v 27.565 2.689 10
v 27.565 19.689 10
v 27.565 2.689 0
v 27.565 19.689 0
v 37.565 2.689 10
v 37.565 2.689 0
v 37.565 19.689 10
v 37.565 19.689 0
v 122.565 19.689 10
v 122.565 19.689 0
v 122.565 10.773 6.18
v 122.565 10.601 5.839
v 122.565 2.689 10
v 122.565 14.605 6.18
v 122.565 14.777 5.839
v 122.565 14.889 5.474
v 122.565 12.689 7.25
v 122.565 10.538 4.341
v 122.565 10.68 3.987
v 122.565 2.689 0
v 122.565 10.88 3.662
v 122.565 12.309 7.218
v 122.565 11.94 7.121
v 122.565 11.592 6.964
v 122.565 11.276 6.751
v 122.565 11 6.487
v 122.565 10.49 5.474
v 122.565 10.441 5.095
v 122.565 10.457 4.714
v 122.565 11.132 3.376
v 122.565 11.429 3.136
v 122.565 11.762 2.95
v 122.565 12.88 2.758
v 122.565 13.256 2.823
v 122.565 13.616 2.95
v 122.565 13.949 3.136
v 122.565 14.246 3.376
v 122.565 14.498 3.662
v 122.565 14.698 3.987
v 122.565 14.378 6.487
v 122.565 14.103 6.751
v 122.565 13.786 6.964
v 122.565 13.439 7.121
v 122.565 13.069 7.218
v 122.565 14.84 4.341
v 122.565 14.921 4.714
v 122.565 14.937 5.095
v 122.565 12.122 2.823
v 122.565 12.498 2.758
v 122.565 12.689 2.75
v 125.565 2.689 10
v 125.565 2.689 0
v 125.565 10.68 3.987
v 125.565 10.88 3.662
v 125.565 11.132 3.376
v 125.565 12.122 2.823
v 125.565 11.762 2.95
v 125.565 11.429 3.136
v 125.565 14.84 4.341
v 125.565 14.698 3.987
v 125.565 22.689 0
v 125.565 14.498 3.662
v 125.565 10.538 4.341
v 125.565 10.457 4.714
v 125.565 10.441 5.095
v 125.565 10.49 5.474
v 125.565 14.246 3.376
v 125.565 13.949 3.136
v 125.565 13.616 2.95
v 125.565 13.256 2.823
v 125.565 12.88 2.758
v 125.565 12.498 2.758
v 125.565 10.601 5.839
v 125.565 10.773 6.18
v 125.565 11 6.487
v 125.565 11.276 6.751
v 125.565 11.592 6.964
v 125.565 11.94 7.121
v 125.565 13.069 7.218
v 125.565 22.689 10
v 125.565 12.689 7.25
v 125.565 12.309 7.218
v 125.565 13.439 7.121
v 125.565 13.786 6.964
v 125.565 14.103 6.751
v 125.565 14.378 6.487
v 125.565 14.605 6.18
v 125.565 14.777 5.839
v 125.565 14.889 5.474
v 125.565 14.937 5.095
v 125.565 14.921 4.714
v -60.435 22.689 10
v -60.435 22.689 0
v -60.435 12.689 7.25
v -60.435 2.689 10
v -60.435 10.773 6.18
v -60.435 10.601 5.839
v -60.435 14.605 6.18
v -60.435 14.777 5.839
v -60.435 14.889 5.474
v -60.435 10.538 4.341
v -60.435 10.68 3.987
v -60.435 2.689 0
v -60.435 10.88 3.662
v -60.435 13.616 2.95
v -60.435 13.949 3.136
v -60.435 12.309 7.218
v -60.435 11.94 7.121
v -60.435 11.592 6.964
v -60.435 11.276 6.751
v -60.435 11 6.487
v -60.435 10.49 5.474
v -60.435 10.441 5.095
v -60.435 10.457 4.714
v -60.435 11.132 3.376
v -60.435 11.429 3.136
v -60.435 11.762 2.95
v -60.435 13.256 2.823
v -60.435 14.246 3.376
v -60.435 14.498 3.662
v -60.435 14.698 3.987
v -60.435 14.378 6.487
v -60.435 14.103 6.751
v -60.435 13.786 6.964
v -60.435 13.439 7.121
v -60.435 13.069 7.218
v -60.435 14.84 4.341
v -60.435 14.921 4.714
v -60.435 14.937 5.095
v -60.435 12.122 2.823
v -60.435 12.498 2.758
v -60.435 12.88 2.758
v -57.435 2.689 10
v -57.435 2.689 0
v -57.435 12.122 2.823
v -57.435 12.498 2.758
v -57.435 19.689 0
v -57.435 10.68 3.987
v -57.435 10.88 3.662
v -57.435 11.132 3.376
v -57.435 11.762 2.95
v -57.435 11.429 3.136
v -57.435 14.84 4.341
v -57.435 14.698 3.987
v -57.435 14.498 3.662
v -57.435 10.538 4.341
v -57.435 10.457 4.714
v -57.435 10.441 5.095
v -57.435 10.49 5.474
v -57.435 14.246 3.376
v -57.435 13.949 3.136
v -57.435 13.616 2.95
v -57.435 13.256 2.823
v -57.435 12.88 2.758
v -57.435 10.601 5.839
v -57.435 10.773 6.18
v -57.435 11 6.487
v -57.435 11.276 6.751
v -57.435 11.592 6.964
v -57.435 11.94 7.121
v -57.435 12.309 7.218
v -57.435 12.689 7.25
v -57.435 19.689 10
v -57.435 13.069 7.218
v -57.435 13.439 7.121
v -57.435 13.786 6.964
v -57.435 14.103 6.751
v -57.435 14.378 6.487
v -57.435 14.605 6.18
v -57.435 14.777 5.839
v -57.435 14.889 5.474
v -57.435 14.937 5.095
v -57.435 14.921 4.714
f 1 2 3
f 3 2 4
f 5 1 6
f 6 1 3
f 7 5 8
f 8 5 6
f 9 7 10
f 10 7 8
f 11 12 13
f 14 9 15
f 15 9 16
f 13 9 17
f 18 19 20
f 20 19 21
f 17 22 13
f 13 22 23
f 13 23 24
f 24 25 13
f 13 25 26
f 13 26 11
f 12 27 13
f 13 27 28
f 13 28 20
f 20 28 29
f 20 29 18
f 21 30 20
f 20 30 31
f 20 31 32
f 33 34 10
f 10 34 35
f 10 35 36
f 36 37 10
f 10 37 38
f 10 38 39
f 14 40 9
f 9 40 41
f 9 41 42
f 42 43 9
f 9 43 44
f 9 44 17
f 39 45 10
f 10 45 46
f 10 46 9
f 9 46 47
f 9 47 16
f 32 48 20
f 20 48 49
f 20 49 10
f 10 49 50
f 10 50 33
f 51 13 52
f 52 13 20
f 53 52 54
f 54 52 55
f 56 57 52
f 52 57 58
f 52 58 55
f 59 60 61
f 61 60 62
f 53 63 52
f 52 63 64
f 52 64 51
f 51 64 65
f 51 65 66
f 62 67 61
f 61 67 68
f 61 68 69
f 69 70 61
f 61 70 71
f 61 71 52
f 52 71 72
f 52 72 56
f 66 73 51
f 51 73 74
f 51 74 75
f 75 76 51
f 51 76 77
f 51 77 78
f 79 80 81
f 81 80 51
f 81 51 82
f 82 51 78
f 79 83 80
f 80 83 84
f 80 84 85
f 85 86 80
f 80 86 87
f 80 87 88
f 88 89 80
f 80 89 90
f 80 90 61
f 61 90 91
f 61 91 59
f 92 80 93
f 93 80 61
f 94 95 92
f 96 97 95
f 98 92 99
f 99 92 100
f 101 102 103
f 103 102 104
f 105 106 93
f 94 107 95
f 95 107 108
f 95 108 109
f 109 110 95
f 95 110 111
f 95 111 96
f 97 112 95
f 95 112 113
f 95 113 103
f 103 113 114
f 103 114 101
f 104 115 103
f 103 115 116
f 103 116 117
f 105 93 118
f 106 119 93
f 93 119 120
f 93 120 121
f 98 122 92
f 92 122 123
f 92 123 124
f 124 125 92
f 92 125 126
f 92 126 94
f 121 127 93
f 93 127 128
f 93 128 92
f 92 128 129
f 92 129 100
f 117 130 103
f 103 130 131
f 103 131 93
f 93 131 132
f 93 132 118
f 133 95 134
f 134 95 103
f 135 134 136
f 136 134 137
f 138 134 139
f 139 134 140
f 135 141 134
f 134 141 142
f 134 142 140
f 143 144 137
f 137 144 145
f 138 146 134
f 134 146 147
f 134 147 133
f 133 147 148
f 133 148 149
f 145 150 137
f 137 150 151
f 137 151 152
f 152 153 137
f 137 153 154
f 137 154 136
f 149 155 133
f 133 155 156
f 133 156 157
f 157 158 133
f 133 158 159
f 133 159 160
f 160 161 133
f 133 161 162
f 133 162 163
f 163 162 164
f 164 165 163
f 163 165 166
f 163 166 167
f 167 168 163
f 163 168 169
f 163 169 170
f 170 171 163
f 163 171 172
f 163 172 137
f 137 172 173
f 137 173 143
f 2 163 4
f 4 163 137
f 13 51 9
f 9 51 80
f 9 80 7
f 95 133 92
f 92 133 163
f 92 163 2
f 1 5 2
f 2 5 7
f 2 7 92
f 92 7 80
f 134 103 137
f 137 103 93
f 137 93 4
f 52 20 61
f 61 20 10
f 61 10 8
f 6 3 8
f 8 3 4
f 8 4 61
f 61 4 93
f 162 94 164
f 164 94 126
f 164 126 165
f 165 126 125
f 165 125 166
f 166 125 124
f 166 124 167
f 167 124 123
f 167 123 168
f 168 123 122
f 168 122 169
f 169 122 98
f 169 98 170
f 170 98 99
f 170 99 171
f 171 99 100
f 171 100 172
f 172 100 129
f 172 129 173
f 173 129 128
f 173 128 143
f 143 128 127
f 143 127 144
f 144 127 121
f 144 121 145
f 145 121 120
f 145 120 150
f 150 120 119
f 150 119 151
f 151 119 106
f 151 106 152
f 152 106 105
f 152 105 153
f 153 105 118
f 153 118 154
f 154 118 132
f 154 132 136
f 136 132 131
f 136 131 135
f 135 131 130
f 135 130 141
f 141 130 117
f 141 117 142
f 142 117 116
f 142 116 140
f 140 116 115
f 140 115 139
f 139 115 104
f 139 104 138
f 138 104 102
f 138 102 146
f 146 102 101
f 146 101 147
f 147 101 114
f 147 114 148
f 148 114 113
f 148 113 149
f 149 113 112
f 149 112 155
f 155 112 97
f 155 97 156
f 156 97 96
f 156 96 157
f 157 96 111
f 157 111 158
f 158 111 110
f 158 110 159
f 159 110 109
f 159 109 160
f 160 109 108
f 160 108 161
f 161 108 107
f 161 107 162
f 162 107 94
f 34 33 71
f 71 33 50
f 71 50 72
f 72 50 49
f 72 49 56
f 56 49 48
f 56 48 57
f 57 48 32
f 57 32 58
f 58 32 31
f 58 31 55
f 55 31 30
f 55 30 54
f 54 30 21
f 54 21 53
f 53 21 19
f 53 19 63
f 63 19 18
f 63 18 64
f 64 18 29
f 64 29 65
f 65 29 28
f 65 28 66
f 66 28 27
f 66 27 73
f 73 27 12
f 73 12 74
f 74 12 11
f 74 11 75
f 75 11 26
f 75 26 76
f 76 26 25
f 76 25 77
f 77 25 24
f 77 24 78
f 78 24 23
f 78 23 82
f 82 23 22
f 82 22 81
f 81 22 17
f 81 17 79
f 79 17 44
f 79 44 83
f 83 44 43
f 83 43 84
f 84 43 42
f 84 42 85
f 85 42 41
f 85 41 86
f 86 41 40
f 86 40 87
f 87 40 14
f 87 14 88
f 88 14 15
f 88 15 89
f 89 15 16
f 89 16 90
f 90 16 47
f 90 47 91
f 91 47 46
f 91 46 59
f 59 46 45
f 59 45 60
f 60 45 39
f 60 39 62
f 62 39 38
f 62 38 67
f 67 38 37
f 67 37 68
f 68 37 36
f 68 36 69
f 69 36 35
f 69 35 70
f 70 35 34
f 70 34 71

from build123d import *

# Parameters (mm, degrees)
DODANIE_WYCI_GNI_CIE1_DEPTH = 10
SZKIC4_R                    = 2.25
WYTNIJ_WYCI_GNI_CIE1_DEPTH  = 10
WYTNIJ_WYCI_GNI_CIE2_START  = -183
SZKIC4_2_R                  = 2.25
WYTNIJ_WYCI_GNI_CIE2_DEPTH  = 10


with BuildPart() as part:
    # Szkic2 → Dodanie-wyciągnięcie1 (new body)
    with BuildSketch(Plane.XY):
        Polygon((-60.434598082, 22.68907563), (125.565401918, 22.68907563), (125.565401918, 2.68907563), (122.565401918, 2.68907563), (122.565401918, 19.68907563), (37.565401918, 19.68907563), (37.565401918, 2.68907563), (27.565401918, 2.68907563), (27.565401918, 19.68907563), (-57.434598082, 19.68907563), (-57.434598082, 2.68907563), (-60.434598082, 2.68907563), align=None)
    extrude(amount=DODANIE_WYCI_GNI_CIE1_DEPTH)

    # Szkic4 → Wytnij-wyciągnięcie1 (cut)
    with BuildSketch(Plane.ZY.offset(60.434598082)):
        with Locations((5, 12.68907563)):
            Circle(SZKIC4_R)
    extrude(amount=-WYTNIJ_WYCI_GNI_CIE1_DEPTH, mode=Mode.SUBTRACT)

    # Szkic4<2> → Wytnij-wyciągnięcie2 (cut)
    with BuildSketch(Plane.ZY.offset(60.434598082).offset(WYTNIJ_WYCI_GNI_CIE2_START)):
        with Locations((5, 12.68907563)):
            Circle(SZKIC4_2_R)
    extrude(amount=-WYTNIJ_WYCI_GNI_CIE2_DEPTH, mode=Mode.SUBTRACT)


solid = part.part
